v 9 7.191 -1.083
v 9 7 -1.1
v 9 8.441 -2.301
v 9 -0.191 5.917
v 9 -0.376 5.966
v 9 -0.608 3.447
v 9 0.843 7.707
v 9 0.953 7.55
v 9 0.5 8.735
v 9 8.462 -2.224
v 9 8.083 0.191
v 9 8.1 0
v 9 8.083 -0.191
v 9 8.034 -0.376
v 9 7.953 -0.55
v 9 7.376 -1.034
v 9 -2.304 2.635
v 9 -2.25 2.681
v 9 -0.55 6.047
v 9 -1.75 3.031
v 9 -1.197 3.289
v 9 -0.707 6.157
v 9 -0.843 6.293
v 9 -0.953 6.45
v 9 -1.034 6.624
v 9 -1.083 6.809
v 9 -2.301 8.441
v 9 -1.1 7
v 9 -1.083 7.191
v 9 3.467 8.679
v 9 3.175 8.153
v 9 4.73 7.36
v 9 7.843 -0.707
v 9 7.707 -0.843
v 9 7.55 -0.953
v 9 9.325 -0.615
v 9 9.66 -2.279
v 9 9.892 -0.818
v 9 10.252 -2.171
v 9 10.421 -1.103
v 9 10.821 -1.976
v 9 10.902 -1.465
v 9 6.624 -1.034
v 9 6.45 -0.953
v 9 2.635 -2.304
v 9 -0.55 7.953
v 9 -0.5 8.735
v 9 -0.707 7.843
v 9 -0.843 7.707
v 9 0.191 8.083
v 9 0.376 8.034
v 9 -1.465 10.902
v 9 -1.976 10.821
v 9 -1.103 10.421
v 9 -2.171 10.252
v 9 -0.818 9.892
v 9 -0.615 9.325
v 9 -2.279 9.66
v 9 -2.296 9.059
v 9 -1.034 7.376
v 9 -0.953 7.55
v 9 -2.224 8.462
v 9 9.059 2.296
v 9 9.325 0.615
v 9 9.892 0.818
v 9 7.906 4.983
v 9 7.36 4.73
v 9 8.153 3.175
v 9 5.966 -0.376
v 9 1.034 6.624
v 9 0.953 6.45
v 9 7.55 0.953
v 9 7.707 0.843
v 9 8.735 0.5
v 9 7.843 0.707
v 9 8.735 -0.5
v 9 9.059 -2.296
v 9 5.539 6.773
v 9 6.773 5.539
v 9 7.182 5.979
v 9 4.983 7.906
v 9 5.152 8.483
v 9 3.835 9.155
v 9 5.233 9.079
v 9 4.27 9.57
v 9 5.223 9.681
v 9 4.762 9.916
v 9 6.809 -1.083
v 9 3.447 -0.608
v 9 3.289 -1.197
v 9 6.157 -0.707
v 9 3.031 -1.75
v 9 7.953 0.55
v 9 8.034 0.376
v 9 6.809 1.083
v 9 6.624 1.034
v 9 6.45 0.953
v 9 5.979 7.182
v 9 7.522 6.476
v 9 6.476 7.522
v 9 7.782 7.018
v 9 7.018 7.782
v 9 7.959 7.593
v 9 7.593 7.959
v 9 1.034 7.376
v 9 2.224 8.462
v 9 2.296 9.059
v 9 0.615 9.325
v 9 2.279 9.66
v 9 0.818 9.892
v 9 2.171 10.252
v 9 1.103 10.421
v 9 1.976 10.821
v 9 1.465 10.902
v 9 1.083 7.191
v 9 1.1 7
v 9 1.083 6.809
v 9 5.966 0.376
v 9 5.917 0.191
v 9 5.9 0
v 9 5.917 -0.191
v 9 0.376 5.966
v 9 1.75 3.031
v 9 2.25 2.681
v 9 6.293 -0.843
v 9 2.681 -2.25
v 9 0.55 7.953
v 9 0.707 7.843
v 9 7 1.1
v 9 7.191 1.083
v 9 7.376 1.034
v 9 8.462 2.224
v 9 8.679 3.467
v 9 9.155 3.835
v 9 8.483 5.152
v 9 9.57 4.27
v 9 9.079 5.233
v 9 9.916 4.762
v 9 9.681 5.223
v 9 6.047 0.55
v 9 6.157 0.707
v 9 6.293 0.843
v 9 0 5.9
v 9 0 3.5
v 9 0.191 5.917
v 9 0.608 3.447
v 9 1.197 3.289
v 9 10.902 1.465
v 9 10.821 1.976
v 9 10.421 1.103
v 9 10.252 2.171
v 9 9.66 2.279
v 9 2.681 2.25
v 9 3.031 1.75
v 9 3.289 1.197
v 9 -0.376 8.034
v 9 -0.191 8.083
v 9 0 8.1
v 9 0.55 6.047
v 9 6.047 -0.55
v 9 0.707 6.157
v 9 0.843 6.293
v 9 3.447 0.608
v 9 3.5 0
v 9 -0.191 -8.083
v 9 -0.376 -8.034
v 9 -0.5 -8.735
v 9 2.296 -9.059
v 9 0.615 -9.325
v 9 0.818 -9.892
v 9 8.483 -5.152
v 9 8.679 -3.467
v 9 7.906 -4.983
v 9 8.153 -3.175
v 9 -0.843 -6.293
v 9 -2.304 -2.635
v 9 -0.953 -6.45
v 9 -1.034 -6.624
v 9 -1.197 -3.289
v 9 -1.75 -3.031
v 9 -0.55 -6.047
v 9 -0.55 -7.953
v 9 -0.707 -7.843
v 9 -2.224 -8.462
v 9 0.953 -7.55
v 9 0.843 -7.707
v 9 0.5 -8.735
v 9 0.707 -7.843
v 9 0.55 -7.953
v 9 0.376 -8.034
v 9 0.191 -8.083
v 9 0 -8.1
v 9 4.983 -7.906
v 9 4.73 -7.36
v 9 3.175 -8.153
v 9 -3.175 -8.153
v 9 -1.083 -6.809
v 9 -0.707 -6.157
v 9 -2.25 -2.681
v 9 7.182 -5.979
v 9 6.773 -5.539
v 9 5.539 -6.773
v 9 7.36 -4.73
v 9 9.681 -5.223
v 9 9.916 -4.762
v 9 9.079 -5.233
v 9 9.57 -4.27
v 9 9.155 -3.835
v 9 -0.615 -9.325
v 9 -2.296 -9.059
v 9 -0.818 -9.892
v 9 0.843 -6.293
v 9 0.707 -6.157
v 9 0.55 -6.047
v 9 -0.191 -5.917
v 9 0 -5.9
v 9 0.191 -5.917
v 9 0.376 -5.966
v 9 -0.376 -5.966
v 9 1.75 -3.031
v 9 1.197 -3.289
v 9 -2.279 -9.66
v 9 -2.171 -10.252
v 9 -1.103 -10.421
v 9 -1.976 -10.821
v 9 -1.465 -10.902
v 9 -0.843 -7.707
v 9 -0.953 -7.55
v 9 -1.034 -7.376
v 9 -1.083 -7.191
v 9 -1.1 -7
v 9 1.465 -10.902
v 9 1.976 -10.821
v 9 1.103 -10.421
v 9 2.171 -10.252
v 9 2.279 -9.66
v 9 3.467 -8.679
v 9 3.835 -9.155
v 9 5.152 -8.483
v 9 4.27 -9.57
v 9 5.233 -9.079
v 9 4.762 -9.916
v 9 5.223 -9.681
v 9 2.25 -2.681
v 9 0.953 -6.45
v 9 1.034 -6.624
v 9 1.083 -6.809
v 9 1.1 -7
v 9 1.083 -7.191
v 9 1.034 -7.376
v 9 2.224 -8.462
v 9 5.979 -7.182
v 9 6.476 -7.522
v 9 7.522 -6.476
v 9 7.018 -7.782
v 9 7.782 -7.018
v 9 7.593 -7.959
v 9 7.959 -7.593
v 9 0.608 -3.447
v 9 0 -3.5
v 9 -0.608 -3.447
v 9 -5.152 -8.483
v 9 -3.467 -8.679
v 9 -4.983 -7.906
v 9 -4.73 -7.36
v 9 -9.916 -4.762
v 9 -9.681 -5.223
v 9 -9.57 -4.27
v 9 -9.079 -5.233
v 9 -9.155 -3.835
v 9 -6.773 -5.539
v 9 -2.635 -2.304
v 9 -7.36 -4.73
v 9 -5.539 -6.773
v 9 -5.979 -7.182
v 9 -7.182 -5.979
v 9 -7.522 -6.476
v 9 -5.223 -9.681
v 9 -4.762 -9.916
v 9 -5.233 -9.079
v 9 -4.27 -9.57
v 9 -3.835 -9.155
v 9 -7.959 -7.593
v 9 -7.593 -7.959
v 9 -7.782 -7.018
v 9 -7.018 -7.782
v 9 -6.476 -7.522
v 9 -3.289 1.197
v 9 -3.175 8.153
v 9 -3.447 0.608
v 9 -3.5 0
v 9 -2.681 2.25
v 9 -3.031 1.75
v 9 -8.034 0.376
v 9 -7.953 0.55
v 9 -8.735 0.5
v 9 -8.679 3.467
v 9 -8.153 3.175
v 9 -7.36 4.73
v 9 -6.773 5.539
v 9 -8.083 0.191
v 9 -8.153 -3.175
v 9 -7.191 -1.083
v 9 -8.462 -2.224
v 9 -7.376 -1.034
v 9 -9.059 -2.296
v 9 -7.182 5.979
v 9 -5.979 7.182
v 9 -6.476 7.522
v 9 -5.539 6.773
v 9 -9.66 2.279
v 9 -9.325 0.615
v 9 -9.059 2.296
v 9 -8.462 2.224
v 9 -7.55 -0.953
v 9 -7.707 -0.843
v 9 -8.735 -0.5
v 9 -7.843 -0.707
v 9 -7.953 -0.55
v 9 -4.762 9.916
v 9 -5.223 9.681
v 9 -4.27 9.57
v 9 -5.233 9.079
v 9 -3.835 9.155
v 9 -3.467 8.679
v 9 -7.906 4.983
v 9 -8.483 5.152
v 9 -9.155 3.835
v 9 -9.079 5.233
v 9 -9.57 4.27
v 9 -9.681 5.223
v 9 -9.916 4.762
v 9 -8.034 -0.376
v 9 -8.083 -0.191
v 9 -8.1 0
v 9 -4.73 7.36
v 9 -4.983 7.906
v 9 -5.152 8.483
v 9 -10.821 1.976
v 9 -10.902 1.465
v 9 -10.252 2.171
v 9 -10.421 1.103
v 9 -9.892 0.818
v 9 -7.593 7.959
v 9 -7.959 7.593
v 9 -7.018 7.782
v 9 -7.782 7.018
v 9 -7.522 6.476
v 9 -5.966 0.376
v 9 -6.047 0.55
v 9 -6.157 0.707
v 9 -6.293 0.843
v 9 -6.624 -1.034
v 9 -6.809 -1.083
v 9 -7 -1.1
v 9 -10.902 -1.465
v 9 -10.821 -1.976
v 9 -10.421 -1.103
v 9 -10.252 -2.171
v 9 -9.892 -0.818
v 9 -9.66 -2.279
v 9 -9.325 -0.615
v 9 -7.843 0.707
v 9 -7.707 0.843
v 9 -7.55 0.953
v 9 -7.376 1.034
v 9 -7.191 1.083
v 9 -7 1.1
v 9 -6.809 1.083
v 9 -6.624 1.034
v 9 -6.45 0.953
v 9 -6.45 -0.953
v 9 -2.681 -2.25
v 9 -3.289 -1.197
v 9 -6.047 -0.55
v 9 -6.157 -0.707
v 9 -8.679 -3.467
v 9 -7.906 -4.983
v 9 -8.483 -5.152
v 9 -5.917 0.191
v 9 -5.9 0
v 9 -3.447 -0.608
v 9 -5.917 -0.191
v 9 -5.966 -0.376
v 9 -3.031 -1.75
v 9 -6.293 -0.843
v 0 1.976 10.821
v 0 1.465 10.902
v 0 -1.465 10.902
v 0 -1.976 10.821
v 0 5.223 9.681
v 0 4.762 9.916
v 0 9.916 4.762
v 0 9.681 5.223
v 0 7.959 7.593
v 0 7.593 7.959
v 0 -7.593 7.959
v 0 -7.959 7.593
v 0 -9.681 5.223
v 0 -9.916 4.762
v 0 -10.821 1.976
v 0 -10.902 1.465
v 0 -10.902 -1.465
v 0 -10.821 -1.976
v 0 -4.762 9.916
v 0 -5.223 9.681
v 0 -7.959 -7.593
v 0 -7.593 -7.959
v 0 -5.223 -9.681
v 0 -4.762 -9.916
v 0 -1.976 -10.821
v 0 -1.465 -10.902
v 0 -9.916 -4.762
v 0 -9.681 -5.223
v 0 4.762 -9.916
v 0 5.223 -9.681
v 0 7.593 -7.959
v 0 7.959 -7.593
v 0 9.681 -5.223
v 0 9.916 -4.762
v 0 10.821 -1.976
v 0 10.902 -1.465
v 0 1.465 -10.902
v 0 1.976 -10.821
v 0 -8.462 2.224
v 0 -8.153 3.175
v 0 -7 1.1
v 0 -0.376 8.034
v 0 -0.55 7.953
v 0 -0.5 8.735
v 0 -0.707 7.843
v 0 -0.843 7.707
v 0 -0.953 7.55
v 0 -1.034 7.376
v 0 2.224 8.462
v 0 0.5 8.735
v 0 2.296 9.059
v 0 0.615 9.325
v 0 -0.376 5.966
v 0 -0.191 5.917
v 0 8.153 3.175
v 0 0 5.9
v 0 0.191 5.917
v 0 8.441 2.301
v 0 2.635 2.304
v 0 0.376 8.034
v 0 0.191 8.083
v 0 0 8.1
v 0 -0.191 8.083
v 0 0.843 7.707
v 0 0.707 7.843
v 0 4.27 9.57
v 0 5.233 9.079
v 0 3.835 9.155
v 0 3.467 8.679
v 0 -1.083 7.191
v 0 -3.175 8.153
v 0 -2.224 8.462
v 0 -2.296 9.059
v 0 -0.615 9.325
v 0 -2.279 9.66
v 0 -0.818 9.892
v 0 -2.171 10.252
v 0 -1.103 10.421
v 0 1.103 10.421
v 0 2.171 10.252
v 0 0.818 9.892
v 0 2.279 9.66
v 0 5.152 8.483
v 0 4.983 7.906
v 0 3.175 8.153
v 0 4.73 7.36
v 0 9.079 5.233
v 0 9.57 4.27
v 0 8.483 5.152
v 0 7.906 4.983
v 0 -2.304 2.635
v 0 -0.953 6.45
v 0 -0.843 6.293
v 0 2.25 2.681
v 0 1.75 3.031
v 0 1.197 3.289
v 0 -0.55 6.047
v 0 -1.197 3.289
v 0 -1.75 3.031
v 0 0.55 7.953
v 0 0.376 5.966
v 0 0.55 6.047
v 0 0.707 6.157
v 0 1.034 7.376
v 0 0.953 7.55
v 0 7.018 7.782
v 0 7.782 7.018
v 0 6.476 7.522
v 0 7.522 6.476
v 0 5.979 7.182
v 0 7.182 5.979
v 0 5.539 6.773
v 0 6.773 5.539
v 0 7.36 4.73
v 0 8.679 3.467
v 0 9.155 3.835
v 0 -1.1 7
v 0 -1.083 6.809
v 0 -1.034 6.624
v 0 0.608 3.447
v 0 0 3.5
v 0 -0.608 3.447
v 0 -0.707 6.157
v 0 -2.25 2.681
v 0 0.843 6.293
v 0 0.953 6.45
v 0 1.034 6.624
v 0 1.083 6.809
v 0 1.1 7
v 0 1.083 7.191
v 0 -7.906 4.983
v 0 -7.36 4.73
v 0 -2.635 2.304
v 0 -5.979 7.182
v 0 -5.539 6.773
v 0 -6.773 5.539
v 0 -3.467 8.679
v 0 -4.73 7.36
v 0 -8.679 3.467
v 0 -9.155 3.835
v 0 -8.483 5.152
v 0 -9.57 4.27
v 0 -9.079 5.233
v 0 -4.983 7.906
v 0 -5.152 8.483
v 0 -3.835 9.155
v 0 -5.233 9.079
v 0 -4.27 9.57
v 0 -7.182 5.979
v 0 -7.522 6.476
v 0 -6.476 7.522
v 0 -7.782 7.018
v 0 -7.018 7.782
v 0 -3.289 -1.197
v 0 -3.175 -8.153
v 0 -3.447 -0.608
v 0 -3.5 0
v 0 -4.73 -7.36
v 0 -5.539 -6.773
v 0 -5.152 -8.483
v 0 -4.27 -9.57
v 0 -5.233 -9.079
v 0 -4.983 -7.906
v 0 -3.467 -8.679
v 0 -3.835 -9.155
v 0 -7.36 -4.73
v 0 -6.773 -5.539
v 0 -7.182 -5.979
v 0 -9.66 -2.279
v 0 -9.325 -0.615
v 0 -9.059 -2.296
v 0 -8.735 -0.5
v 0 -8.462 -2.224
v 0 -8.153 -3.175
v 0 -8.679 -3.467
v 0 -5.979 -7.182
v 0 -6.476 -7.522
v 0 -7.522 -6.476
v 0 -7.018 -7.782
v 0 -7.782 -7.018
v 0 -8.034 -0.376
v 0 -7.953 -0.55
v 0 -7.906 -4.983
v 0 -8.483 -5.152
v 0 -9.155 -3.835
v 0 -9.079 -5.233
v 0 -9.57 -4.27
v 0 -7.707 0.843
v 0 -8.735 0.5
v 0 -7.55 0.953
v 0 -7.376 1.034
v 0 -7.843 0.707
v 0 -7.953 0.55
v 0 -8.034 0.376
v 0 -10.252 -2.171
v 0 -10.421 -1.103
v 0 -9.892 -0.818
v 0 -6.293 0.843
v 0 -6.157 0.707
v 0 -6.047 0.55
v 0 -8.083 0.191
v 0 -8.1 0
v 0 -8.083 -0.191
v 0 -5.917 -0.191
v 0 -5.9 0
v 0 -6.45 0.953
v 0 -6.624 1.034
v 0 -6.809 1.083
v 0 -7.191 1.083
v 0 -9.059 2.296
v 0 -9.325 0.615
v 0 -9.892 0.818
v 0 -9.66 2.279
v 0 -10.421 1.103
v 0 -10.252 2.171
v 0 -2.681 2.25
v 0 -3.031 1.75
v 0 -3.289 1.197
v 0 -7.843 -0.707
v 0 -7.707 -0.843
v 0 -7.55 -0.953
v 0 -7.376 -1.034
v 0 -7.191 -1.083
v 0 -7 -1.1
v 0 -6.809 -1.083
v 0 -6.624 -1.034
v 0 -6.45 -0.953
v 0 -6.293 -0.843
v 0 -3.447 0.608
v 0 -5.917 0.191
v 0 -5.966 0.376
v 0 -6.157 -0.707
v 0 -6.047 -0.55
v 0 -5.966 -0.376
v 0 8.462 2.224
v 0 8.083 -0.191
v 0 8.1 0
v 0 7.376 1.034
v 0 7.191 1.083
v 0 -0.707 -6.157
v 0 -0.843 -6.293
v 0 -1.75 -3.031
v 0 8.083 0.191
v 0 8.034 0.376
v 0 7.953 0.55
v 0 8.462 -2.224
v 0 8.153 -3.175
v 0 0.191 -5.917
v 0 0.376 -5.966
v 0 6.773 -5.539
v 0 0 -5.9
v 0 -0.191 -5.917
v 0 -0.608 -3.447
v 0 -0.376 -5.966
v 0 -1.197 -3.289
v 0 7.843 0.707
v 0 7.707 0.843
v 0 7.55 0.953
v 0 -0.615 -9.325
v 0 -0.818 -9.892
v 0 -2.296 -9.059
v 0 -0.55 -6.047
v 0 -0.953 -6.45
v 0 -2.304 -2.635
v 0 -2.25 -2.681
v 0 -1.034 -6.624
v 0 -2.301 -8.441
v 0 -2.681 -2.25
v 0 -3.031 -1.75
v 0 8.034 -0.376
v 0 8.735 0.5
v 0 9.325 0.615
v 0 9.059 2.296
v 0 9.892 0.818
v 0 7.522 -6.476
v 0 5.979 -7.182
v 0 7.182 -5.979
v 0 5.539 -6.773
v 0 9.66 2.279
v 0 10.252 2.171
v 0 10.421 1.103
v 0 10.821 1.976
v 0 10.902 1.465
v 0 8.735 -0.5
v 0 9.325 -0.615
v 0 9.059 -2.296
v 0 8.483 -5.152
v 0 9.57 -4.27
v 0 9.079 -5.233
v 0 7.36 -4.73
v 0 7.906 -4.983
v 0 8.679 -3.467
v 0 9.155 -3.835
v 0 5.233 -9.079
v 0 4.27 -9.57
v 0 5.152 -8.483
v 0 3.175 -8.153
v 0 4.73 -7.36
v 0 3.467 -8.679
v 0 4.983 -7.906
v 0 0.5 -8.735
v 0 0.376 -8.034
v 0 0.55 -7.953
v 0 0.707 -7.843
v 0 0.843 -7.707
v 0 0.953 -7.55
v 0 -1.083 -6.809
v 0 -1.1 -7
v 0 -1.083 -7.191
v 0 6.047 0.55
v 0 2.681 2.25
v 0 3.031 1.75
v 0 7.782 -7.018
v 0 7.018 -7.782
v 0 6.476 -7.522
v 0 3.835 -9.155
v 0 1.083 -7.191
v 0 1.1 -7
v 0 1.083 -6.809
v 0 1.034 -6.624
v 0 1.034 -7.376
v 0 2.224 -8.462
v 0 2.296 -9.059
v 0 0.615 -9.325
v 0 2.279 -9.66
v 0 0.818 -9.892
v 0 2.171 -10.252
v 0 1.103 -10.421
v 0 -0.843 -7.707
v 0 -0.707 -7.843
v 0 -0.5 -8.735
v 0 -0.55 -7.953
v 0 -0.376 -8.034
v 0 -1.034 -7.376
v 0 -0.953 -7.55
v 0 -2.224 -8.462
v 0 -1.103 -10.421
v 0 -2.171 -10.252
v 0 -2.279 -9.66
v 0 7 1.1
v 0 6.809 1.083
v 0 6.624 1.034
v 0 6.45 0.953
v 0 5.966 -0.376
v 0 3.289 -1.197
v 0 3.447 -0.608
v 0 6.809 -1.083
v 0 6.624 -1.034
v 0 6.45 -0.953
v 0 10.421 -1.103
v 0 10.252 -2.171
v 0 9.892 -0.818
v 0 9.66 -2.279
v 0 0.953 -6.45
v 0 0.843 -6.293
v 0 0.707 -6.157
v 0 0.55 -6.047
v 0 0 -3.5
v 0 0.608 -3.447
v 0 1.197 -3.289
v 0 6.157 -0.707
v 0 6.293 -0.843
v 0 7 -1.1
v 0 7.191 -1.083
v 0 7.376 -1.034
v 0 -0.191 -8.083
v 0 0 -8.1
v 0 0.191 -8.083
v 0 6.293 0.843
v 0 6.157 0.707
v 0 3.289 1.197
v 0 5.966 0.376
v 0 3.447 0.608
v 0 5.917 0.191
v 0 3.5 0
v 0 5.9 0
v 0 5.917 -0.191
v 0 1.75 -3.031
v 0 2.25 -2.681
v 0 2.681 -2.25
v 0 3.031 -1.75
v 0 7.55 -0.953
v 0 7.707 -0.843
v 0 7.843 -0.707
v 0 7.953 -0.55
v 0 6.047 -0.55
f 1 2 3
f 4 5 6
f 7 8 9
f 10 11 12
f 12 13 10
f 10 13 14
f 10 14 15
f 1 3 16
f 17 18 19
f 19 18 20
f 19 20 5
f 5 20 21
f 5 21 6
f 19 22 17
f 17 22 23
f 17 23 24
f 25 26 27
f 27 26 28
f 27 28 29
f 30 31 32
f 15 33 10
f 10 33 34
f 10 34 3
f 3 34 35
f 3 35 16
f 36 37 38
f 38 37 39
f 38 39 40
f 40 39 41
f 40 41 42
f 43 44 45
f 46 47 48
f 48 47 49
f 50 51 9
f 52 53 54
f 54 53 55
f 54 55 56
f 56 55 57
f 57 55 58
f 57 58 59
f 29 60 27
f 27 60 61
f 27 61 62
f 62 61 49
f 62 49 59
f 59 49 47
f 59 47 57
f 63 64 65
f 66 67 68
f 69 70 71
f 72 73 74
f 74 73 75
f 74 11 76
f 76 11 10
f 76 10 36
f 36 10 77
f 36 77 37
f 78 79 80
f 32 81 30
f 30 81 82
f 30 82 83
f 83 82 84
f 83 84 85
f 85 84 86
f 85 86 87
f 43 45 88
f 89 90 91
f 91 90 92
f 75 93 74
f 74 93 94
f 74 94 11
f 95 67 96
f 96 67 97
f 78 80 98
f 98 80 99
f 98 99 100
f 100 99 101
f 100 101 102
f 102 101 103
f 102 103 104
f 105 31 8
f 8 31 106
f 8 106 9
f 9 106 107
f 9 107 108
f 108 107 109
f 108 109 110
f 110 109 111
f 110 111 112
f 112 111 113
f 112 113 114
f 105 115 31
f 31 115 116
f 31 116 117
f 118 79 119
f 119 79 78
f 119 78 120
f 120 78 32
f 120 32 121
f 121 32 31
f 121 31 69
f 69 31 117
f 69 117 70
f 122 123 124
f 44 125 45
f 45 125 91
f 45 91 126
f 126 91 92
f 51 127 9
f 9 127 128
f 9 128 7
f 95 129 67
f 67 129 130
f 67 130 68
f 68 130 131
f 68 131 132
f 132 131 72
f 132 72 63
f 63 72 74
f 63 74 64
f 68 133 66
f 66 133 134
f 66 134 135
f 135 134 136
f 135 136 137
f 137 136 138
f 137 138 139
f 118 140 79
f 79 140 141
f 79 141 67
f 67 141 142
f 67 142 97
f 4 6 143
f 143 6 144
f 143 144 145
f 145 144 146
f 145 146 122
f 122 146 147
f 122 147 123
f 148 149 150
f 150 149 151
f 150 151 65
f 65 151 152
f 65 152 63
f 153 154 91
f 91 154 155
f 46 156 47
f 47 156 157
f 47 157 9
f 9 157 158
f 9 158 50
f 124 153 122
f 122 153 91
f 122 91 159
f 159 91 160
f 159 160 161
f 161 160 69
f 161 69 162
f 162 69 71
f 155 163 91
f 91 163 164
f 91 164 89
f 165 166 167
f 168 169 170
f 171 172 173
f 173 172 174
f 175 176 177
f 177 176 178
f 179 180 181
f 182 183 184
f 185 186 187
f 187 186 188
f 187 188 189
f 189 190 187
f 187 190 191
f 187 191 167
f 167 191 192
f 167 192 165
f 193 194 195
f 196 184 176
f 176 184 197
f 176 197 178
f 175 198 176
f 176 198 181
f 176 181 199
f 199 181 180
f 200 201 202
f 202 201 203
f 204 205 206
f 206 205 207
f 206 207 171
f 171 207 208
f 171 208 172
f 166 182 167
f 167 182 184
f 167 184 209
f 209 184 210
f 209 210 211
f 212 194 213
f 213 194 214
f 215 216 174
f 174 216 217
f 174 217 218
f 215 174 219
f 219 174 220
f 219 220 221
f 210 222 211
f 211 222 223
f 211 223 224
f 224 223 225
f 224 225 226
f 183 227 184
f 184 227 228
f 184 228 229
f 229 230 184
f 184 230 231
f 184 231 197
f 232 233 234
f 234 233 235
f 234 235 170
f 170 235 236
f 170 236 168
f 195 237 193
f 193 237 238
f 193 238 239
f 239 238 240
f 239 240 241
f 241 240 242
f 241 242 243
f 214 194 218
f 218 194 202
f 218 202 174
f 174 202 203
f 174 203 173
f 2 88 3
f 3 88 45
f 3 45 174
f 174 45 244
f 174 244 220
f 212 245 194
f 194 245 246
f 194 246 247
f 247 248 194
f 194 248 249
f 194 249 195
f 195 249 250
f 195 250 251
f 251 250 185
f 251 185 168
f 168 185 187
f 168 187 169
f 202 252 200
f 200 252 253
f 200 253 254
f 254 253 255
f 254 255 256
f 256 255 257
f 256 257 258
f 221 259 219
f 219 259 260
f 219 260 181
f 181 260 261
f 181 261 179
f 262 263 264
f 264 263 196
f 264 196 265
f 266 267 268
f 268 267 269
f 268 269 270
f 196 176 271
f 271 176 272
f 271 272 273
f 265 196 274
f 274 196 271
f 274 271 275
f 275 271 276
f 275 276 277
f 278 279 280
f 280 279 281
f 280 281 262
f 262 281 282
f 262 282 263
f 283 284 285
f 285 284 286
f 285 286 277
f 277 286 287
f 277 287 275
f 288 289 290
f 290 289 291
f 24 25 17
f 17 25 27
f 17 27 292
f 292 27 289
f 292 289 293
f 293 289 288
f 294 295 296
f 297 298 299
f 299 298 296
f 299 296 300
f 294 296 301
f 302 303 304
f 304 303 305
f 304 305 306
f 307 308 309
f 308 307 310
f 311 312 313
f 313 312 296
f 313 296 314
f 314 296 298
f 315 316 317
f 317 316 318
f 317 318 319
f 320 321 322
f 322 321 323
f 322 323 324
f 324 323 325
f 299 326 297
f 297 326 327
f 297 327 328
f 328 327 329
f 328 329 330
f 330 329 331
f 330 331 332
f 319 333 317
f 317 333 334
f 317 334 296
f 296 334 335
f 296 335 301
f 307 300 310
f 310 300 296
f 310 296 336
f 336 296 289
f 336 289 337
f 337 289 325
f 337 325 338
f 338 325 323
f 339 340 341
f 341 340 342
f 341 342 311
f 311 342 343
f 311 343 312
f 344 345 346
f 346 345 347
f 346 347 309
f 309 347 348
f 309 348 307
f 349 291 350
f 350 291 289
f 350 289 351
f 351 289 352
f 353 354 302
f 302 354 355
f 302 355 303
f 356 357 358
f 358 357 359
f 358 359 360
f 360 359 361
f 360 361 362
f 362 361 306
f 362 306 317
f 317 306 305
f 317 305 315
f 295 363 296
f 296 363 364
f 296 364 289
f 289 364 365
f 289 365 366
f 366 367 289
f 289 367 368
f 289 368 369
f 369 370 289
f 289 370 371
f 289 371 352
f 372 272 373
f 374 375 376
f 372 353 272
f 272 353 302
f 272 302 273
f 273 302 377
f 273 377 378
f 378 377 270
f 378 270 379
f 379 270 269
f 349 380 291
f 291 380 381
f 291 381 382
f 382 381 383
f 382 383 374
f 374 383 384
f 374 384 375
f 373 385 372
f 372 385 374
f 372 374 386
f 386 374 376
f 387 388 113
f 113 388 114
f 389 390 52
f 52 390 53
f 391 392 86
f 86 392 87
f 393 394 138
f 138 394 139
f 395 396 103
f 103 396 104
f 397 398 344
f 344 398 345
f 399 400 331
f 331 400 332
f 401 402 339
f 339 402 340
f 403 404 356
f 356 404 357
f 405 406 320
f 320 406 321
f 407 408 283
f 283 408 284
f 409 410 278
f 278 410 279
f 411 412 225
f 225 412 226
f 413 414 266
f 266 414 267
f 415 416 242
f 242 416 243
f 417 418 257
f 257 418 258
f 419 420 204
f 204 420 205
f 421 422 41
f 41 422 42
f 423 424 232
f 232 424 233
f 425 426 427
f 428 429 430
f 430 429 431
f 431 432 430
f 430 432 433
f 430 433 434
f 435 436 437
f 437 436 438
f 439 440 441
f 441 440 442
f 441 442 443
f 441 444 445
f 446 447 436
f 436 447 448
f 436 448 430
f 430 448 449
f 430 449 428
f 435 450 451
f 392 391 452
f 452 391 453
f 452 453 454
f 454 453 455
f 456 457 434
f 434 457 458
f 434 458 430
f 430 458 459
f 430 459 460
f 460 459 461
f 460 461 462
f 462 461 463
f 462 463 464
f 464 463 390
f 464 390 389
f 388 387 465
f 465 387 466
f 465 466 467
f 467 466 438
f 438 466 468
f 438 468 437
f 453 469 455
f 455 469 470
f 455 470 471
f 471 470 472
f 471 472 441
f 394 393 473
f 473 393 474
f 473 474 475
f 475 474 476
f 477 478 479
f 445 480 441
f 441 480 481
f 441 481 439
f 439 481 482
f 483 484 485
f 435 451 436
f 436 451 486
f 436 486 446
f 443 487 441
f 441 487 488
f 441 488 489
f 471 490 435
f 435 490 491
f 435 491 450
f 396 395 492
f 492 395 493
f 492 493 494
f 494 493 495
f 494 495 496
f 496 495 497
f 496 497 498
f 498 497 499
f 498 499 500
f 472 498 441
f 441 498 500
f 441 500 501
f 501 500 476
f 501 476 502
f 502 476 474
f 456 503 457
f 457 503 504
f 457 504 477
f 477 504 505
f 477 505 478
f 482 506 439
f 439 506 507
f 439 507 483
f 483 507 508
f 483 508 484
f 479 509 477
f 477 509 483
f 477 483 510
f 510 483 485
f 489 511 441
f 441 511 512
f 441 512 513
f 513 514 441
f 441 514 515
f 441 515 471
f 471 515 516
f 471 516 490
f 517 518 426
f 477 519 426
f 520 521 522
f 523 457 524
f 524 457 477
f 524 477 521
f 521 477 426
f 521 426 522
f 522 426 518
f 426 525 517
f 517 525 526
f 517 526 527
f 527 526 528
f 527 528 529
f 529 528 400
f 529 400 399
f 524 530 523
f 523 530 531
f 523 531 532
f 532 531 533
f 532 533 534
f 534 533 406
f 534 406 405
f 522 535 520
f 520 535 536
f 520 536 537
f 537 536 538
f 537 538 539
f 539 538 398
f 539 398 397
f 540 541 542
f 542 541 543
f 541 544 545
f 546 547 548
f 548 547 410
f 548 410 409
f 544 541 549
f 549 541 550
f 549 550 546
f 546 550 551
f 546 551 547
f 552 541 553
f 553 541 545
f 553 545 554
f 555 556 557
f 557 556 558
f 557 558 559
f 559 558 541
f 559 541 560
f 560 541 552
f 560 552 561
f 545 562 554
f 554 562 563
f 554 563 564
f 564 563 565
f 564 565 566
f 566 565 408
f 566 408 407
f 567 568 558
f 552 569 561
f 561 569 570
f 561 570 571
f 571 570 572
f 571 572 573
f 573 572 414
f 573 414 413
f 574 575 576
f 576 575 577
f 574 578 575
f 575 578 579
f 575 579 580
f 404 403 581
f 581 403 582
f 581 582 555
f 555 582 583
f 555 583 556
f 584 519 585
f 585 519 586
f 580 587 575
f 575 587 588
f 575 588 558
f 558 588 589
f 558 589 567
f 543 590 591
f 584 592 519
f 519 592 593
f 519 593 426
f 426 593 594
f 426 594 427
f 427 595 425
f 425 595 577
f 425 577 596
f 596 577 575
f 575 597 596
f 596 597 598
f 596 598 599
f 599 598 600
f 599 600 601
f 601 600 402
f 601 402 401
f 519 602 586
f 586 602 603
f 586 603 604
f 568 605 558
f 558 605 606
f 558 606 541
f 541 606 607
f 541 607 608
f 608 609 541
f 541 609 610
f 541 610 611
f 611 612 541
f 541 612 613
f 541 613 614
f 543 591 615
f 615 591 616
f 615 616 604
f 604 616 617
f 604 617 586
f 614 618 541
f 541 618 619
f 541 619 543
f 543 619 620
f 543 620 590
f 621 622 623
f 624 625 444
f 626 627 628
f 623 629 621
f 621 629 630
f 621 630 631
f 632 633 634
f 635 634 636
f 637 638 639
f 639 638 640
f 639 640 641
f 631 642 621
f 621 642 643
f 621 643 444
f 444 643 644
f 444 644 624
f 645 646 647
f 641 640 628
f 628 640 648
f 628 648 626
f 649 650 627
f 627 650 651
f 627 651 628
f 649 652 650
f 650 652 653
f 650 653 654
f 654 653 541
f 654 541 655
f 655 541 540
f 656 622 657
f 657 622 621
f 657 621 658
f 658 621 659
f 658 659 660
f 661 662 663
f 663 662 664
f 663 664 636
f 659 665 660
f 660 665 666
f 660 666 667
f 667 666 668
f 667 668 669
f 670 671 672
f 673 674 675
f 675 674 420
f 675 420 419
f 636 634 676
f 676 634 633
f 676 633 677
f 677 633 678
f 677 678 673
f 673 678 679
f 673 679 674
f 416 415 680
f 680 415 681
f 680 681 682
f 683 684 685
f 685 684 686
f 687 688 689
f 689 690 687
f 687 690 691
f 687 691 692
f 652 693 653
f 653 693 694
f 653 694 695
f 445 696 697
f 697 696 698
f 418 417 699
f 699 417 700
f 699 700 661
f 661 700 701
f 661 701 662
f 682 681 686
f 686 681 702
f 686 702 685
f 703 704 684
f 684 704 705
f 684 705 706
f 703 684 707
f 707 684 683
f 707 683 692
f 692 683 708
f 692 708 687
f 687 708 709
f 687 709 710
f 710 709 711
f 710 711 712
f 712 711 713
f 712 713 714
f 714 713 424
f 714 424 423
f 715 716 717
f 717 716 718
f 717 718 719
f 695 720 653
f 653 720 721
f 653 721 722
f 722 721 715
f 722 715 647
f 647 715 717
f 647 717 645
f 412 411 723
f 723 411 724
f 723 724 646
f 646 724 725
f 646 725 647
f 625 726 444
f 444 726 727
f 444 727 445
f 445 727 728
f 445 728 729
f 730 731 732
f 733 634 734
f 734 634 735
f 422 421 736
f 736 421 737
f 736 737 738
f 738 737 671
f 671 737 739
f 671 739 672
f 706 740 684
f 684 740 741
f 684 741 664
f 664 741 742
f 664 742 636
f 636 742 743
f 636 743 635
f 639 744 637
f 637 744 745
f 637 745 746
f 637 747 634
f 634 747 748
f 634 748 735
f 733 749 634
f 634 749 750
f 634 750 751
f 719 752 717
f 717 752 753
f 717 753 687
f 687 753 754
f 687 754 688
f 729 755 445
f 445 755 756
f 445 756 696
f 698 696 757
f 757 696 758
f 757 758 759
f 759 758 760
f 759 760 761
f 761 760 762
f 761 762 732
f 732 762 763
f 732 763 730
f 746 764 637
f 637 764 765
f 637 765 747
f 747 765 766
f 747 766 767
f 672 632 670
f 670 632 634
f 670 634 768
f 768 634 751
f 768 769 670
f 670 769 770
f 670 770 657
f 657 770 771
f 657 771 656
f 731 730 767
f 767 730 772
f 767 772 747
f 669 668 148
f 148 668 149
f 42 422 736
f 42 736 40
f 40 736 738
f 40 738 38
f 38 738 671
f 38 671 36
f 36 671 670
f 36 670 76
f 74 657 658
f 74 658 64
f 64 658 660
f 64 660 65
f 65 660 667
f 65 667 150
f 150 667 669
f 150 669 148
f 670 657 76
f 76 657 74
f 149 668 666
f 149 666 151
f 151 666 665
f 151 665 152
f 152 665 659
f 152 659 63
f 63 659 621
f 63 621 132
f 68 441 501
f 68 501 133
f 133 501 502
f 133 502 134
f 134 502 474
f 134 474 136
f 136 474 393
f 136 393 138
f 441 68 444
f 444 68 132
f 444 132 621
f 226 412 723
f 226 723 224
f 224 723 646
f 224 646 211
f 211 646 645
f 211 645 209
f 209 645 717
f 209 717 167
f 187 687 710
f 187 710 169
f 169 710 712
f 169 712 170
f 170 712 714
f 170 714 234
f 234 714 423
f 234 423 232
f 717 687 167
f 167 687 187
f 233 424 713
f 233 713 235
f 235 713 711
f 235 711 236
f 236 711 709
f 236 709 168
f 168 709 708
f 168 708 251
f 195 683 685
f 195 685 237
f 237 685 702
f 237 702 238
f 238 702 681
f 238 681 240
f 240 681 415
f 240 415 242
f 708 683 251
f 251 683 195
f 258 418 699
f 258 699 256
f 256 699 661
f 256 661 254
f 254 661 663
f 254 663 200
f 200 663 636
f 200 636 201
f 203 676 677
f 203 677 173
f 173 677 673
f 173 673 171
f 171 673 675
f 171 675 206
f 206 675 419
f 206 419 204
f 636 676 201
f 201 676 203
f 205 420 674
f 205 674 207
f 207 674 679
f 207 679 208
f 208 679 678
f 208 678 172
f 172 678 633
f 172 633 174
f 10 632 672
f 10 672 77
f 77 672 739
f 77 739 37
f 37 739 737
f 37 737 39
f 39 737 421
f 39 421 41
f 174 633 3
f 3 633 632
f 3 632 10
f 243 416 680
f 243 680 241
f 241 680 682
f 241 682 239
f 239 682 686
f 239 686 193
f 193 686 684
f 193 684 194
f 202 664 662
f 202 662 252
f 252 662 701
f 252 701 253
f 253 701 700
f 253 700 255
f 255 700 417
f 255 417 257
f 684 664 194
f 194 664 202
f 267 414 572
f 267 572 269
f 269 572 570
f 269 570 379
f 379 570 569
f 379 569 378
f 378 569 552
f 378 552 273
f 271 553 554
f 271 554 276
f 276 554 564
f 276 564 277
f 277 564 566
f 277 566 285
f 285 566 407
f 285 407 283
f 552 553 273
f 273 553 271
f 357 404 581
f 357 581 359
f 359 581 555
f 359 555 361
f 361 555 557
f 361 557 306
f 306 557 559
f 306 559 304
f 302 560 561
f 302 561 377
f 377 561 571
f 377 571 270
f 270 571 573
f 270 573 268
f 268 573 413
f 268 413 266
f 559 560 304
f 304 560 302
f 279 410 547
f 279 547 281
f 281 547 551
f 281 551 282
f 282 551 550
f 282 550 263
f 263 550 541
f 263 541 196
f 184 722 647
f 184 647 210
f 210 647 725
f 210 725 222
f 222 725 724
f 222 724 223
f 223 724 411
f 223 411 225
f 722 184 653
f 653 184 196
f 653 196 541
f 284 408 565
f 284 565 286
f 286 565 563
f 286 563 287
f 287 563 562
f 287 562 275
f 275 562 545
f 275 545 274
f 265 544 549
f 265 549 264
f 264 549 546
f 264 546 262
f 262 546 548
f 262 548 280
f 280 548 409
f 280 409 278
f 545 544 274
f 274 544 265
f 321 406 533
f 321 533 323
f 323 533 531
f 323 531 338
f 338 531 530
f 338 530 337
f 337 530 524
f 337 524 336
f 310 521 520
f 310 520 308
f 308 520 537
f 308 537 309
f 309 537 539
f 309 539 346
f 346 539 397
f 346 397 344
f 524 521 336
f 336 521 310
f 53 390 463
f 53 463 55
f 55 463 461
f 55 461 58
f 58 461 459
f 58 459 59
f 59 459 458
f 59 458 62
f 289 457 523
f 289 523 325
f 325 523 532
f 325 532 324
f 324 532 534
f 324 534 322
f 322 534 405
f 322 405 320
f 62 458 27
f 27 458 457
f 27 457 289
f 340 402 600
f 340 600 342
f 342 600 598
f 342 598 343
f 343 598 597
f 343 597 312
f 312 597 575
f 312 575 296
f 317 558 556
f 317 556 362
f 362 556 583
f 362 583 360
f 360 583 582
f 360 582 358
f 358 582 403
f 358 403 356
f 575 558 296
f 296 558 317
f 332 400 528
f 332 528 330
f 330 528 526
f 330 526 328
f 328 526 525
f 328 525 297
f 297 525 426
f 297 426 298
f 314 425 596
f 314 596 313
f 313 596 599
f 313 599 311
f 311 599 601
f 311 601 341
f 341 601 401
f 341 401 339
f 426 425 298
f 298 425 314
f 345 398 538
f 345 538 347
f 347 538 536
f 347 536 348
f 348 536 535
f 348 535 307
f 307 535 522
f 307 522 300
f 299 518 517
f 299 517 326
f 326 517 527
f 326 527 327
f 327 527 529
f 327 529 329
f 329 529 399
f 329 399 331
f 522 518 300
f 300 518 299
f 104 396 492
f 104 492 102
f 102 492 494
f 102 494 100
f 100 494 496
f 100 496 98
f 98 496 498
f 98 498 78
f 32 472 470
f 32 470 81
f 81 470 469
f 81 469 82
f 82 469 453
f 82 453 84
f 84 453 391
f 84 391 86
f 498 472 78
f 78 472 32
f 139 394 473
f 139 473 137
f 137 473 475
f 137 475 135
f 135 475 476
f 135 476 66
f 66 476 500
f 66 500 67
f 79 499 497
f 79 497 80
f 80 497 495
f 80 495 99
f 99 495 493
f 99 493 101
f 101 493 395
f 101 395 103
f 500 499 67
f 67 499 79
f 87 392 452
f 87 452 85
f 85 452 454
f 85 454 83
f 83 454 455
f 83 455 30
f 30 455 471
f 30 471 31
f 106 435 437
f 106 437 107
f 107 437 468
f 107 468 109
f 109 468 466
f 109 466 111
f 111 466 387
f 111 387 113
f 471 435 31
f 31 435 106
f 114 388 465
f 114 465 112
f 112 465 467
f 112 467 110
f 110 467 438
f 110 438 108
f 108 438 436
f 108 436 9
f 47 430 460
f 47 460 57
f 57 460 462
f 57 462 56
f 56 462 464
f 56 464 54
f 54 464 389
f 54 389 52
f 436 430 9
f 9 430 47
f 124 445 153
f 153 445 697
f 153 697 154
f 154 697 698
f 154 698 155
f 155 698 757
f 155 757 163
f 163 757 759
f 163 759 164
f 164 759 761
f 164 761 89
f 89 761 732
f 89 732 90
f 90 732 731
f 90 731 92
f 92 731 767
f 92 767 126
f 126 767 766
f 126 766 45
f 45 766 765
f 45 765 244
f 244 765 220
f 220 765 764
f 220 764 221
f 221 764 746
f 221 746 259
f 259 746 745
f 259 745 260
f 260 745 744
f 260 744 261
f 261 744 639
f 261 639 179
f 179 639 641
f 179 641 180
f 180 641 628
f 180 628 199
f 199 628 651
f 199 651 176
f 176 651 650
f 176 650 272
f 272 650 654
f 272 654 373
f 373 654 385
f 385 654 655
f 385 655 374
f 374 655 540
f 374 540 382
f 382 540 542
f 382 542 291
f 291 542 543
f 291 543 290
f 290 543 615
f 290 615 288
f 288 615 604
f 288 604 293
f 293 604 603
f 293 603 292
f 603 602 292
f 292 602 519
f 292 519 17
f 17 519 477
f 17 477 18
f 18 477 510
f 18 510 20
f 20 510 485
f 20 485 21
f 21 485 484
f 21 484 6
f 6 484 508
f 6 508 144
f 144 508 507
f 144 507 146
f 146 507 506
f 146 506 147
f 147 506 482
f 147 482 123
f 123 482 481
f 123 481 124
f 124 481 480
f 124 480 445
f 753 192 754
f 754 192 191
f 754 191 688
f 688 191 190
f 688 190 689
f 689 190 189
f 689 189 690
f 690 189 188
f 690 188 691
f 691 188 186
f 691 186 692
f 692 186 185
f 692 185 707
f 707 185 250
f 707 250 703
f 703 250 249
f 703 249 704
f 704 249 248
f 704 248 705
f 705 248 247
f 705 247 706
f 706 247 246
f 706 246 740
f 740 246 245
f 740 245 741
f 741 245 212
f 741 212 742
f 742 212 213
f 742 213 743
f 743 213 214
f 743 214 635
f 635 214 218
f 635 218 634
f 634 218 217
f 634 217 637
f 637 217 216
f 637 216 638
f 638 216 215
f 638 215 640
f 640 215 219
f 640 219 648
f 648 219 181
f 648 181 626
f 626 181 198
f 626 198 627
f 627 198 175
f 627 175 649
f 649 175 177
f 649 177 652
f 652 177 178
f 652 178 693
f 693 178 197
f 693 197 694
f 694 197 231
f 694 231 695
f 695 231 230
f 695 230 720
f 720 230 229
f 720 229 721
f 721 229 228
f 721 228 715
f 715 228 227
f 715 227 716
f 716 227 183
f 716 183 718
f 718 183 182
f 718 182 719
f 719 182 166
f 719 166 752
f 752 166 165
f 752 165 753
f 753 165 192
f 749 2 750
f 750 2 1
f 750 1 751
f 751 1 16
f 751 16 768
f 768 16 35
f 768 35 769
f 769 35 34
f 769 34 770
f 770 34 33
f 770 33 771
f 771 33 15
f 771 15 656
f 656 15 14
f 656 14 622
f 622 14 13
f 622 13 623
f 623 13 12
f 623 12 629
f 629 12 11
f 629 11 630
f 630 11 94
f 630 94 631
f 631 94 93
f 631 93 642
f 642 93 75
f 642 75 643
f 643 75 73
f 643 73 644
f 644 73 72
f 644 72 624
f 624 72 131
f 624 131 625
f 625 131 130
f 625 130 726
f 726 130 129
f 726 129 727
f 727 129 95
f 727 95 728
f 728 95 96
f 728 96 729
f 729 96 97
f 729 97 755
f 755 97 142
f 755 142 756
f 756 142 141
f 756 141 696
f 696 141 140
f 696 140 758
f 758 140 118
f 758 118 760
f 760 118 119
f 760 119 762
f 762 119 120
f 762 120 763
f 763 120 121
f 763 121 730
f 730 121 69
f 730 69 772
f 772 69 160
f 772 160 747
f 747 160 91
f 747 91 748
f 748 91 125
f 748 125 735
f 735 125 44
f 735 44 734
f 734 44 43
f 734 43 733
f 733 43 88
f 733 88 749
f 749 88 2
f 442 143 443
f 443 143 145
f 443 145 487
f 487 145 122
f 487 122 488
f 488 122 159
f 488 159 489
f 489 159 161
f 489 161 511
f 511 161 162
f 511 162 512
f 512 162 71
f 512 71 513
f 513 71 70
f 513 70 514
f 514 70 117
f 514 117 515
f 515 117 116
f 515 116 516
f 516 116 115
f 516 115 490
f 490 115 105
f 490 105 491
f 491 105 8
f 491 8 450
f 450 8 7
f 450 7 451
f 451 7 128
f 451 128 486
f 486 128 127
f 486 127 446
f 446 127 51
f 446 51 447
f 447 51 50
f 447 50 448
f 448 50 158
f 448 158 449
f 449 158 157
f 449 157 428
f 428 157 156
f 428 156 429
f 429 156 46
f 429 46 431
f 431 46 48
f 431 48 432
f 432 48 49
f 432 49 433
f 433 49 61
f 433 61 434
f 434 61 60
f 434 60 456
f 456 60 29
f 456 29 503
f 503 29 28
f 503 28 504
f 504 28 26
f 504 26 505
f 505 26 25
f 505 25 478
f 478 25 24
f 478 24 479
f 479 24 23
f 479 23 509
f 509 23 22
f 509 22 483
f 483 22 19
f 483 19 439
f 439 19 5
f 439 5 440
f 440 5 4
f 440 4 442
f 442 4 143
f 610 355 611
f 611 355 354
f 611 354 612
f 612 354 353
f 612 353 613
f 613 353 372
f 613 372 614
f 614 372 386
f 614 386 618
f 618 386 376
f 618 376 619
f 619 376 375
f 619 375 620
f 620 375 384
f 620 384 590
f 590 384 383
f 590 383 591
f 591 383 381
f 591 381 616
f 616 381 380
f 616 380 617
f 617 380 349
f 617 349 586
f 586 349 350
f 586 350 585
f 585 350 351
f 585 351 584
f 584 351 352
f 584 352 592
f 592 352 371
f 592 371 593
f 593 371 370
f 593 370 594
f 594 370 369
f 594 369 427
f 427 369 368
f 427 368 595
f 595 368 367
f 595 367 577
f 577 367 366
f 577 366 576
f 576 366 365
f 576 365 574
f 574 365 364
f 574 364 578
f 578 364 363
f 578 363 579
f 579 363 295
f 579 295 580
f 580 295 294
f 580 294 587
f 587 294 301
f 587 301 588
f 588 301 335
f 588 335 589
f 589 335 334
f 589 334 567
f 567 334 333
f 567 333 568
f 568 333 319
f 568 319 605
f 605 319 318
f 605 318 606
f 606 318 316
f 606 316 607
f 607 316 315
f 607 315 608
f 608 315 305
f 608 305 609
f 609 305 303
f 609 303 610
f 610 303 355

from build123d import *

# Parameters (mm, degrees)
BASPROSKE_W        = 9
BASPROSKE_H        = 11
TOOTHCUT_DEPTH     = 18.972200756
TEETHCUTS_COUNT    = 20
TEETHCUTS_ANGLE    = 342
BORSKE_R           = 3.5
BORE_DEPTH         = 50.0000508
SKETCH1_R          = 1.1
CUT_EXTRUDE1_DEPTH = 18.852389344


with BuildPart() as part:
    # BasProSke → Base-Revolve (revolve)
    with BuildSketch(Plane(origin=(0, 0, 0), x_dir=(1, 0, 0), z_dir=(0, 1, 0)), mode=Mode.PRIVATE) as base_revolve_sk:
        with Locations((4.5, 5.5)):
            Rectangle(BASPROSKE_W, BASPROSKE_H)
    revolve(base_revolve_sk.sketch.rotate(Axis((-10, 0, 0), (1, 0, 0)), 180), axis=Axis((-10, 0, 0), (1, 0, 0)))

    # TooCutSke → ToothCut (cut, through all)
    with BuildSketch(Plane(origin=(0, 0, 0), x_dir=(0, 0, -1), z_dir=(1, 0, 0))):
        with BuildLine():
            ThreePointArc((0.499924007, 8.734705318), (0, 8.749), (-0.499924007, 8.734705318))
            ThreePointArc((-0.499924007, 8.734705318), (-0.824302243, 9.905497836), (-1.485192705, 10.924909509))
            ThreePointArc((-1.485192705, 10.924909509), (0, 11.0254), (1.485192705, 10.924909509))
            ThreePointArc((1.485192705, 10.924909509), (0.824302243, 9.905497836), (0.499924007, 8.734705318))
        make_face()
    toothcut = extrude(amount=TOOTHCUT_DEPTH, mode=Mode.SUBTRACT)

    # TeethCuts: ToothCut ×20 about axis
    teethcuts_axis = Axis((-10, 0, 0), (1, 0, 0))
    for i in range(1, TEETHCUTS_COUNT):
        add(toothcut.rotate(teethcuts_axis, i * TEETHCUTS_ANGLE / (TEETHCUTS_COUNT - 1)), mode=Mode.SUBTRACT)

    # BorSke → Bore (cut, symmetric)
    with BuildSketch(Plane(origin=(0, 0, 0), x_dir=(0, 0, -1), z_dir=(1, 0, 0))):
        with Locations(Location((0, 0, 0), (0, 0, 180))):
            Circle(BORSKE_R)
    extrude(amount=BORE_DEPTH, both=True, mode=Mode.SUBTRACT)

    # Sketch1 → Cut-Extrude1 (cut, through all)
    with BuildSketch(Plane(origin=(9, 0, 0), x_dir=(0, 0, -1), z_dir=(1, 0, 0))):
        with Locations((0, -7)):
            Circle(SKETCH1_R)
        with Locations((0, 7)):
            Circle(SKETCH1_R)
        with Locations((7, 0)):
            Circle(SKETCH1_R)
        with Locations((-7, 0)):
            Circle(SKETCH1_R)
    extrude(amount=-CUT_EXTRUDE1_DEPTH, mode=Mode.SUBTRACT)


solid = part.part
